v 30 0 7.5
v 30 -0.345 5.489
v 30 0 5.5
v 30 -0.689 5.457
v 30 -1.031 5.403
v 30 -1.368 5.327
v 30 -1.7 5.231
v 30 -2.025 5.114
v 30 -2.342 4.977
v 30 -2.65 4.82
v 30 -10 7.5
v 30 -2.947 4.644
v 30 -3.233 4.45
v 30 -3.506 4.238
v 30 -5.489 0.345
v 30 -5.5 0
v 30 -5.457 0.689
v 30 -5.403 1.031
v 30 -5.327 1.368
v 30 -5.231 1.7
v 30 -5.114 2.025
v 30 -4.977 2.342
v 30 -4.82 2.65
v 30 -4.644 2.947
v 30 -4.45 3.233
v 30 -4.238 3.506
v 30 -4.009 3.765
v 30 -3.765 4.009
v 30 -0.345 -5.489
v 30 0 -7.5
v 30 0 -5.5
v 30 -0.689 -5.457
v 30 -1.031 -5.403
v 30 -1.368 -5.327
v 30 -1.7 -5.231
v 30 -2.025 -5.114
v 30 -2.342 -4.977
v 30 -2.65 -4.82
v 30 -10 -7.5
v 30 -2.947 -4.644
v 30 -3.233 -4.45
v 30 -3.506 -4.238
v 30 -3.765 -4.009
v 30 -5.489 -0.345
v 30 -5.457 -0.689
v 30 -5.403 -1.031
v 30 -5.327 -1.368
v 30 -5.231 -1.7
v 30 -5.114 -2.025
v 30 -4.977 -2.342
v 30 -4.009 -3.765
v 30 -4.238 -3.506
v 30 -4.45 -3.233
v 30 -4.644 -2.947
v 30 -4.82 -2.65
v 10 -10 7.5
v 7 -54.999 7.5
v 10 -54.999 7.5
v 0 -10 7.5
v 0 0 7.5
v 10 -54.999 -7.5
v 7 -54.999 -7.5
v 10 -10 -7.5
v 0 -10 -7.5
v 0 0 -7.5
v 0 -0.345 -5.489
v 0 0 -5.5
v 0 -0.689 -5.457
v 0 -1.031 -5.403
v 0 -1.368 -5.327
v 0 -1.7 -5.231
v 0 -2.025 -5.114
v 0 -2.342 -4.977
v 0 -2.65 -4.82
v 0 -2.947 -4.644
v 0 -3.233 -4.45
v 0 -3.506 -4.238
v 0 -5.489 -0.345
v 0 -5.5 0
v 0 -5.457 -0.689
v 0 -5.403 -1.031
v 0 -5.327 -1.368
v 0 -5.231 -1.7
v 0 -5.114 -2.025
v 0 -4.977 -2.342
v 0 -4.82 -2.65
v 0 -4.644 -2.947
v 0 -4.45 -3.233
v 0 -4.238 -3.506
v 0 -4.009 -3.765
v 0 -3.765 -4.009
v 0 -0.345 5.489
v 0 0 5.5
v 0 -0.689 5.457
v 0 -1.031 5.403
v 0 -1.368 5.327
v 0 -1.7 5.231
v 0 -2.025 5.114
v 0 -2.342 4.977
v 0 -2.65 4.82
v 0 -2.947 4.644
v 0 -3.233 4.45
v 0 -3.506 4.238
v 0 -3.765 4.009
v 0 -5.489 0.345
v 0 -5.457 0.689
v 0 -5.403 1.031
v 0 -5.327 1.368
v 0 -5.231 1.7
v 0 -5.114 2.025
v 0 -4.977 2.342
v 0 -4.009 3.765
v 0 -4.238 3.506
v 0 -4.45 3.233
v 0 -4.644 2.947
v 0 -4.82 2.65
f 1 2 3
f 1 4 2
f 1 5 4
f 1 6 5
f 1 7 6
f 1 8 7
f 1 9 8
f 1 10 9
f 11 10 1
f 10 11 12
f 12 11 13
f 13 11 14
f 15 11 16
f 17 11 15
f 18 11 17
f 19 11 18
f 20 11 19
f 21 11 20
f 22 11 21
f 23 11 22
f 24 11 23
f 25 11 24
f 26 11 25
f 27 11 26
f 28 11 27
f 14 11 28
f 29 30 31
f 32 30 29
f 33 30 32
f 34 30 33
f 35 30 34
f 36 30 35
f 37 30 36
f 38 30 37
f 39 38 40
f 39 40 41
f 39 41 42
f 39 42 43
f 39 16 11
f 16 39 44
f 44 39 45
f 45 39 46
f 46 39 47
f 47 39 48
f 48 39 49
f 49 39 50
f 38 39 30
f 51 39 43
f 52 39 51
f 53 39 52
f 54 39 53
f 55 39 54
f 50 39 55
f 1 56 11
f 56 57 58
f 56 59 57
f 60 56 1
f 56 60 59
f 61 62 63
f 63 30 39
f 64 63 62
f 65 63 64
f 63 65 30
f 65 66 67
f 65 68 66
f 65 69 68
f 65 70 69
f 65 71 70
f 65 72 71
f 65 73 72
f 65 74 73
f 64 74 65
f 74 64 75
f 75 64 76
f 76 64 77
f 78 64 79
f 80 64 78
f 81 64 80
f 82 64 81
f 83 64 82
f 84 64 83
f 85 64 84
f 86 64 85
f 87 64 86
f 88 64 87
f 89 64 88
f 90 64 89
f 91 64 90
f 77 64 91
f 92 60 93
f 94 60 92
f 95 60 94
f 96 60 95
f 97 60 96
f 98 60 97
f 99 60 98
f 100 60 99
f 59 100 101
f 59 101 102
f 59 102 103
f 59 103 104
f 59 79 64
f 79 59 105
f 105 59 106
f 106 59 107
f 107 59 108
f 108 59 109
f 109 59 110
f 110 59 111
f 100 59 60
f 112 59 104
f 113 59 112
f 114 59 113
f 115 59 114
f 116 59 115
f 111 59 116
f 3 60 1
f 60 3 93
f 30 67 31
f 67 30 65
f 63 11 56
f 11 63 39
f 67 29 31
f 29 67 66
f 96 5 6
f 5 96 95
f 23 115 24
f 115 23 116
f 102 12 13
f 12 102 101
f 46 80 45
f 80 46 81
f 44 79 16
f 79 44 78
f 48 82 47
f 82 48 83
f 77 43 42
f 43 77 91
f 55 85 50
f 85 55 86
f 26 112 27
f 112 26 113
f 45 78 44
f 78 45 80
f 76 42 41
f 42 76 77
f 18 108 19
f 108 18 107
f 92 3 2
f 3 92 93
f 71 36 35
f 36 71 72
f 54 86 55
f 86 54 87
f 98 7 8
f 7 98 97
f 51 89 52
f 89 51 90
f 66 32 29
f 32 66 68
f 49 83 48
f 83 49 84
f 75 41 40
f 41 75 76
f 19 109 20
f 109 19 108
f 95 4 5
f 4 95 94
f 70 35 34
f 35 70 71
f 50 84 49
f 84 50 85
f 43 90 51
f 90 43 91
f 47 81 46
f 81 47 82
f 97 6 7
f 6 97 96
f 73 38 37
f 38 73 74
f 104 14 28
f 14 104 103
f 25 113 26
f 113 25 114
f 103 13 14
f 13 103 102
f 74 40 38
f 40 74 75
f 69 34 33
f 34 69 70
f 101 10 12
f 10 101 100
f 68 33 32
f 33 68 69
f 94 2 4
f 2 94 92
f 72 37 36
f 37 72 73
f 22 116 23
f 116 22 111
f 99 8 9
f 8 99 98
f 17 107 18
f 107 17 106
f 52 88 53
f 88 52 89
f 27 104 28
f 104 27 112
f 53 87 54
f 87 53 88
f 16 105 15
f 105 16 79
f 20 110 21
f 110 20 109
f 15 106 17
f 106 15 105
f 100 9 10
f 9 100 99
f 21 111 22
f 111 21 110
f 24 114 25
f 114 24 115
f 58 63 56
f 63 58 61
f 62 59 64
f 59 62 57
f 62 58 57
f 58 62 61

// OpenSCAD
// fn resolution
$fn=100; //[100:360]

/* [Base Settings] */
holder_width = 30;
holder_height = 15;
holder_depth = 10;

/* [Arm Settings] */
arm_length = 45;
arm_width_wide = 10;
arm_width_narrow = 3;

/* [Cutout Settings] */
cutout_width = 30;
cutout_radius = 5.5;

/* base with cutout */
difference() {
  translate([0, -holder_depth, -(holder_height/2)])
    cube([holder_width, holder_depth, holder_height]);

  translate([-0.01, 0, 0])
    rotate([0, 90, 0])
    cylinder(h=cutout_width+0.02, r=cutout_radius);
}

/* arm */
rotate([180, 0, 0])
  translate([0, holder_depth-0.001, -(holder_height/2)])
  linear_extrude(height=holder_height)
  polygon(points=[[0,0], [(arm_width_wide-arm_width_narrow),arm_length], [arm_width_wide,arm_length], [arm_width_wide,0]]);
